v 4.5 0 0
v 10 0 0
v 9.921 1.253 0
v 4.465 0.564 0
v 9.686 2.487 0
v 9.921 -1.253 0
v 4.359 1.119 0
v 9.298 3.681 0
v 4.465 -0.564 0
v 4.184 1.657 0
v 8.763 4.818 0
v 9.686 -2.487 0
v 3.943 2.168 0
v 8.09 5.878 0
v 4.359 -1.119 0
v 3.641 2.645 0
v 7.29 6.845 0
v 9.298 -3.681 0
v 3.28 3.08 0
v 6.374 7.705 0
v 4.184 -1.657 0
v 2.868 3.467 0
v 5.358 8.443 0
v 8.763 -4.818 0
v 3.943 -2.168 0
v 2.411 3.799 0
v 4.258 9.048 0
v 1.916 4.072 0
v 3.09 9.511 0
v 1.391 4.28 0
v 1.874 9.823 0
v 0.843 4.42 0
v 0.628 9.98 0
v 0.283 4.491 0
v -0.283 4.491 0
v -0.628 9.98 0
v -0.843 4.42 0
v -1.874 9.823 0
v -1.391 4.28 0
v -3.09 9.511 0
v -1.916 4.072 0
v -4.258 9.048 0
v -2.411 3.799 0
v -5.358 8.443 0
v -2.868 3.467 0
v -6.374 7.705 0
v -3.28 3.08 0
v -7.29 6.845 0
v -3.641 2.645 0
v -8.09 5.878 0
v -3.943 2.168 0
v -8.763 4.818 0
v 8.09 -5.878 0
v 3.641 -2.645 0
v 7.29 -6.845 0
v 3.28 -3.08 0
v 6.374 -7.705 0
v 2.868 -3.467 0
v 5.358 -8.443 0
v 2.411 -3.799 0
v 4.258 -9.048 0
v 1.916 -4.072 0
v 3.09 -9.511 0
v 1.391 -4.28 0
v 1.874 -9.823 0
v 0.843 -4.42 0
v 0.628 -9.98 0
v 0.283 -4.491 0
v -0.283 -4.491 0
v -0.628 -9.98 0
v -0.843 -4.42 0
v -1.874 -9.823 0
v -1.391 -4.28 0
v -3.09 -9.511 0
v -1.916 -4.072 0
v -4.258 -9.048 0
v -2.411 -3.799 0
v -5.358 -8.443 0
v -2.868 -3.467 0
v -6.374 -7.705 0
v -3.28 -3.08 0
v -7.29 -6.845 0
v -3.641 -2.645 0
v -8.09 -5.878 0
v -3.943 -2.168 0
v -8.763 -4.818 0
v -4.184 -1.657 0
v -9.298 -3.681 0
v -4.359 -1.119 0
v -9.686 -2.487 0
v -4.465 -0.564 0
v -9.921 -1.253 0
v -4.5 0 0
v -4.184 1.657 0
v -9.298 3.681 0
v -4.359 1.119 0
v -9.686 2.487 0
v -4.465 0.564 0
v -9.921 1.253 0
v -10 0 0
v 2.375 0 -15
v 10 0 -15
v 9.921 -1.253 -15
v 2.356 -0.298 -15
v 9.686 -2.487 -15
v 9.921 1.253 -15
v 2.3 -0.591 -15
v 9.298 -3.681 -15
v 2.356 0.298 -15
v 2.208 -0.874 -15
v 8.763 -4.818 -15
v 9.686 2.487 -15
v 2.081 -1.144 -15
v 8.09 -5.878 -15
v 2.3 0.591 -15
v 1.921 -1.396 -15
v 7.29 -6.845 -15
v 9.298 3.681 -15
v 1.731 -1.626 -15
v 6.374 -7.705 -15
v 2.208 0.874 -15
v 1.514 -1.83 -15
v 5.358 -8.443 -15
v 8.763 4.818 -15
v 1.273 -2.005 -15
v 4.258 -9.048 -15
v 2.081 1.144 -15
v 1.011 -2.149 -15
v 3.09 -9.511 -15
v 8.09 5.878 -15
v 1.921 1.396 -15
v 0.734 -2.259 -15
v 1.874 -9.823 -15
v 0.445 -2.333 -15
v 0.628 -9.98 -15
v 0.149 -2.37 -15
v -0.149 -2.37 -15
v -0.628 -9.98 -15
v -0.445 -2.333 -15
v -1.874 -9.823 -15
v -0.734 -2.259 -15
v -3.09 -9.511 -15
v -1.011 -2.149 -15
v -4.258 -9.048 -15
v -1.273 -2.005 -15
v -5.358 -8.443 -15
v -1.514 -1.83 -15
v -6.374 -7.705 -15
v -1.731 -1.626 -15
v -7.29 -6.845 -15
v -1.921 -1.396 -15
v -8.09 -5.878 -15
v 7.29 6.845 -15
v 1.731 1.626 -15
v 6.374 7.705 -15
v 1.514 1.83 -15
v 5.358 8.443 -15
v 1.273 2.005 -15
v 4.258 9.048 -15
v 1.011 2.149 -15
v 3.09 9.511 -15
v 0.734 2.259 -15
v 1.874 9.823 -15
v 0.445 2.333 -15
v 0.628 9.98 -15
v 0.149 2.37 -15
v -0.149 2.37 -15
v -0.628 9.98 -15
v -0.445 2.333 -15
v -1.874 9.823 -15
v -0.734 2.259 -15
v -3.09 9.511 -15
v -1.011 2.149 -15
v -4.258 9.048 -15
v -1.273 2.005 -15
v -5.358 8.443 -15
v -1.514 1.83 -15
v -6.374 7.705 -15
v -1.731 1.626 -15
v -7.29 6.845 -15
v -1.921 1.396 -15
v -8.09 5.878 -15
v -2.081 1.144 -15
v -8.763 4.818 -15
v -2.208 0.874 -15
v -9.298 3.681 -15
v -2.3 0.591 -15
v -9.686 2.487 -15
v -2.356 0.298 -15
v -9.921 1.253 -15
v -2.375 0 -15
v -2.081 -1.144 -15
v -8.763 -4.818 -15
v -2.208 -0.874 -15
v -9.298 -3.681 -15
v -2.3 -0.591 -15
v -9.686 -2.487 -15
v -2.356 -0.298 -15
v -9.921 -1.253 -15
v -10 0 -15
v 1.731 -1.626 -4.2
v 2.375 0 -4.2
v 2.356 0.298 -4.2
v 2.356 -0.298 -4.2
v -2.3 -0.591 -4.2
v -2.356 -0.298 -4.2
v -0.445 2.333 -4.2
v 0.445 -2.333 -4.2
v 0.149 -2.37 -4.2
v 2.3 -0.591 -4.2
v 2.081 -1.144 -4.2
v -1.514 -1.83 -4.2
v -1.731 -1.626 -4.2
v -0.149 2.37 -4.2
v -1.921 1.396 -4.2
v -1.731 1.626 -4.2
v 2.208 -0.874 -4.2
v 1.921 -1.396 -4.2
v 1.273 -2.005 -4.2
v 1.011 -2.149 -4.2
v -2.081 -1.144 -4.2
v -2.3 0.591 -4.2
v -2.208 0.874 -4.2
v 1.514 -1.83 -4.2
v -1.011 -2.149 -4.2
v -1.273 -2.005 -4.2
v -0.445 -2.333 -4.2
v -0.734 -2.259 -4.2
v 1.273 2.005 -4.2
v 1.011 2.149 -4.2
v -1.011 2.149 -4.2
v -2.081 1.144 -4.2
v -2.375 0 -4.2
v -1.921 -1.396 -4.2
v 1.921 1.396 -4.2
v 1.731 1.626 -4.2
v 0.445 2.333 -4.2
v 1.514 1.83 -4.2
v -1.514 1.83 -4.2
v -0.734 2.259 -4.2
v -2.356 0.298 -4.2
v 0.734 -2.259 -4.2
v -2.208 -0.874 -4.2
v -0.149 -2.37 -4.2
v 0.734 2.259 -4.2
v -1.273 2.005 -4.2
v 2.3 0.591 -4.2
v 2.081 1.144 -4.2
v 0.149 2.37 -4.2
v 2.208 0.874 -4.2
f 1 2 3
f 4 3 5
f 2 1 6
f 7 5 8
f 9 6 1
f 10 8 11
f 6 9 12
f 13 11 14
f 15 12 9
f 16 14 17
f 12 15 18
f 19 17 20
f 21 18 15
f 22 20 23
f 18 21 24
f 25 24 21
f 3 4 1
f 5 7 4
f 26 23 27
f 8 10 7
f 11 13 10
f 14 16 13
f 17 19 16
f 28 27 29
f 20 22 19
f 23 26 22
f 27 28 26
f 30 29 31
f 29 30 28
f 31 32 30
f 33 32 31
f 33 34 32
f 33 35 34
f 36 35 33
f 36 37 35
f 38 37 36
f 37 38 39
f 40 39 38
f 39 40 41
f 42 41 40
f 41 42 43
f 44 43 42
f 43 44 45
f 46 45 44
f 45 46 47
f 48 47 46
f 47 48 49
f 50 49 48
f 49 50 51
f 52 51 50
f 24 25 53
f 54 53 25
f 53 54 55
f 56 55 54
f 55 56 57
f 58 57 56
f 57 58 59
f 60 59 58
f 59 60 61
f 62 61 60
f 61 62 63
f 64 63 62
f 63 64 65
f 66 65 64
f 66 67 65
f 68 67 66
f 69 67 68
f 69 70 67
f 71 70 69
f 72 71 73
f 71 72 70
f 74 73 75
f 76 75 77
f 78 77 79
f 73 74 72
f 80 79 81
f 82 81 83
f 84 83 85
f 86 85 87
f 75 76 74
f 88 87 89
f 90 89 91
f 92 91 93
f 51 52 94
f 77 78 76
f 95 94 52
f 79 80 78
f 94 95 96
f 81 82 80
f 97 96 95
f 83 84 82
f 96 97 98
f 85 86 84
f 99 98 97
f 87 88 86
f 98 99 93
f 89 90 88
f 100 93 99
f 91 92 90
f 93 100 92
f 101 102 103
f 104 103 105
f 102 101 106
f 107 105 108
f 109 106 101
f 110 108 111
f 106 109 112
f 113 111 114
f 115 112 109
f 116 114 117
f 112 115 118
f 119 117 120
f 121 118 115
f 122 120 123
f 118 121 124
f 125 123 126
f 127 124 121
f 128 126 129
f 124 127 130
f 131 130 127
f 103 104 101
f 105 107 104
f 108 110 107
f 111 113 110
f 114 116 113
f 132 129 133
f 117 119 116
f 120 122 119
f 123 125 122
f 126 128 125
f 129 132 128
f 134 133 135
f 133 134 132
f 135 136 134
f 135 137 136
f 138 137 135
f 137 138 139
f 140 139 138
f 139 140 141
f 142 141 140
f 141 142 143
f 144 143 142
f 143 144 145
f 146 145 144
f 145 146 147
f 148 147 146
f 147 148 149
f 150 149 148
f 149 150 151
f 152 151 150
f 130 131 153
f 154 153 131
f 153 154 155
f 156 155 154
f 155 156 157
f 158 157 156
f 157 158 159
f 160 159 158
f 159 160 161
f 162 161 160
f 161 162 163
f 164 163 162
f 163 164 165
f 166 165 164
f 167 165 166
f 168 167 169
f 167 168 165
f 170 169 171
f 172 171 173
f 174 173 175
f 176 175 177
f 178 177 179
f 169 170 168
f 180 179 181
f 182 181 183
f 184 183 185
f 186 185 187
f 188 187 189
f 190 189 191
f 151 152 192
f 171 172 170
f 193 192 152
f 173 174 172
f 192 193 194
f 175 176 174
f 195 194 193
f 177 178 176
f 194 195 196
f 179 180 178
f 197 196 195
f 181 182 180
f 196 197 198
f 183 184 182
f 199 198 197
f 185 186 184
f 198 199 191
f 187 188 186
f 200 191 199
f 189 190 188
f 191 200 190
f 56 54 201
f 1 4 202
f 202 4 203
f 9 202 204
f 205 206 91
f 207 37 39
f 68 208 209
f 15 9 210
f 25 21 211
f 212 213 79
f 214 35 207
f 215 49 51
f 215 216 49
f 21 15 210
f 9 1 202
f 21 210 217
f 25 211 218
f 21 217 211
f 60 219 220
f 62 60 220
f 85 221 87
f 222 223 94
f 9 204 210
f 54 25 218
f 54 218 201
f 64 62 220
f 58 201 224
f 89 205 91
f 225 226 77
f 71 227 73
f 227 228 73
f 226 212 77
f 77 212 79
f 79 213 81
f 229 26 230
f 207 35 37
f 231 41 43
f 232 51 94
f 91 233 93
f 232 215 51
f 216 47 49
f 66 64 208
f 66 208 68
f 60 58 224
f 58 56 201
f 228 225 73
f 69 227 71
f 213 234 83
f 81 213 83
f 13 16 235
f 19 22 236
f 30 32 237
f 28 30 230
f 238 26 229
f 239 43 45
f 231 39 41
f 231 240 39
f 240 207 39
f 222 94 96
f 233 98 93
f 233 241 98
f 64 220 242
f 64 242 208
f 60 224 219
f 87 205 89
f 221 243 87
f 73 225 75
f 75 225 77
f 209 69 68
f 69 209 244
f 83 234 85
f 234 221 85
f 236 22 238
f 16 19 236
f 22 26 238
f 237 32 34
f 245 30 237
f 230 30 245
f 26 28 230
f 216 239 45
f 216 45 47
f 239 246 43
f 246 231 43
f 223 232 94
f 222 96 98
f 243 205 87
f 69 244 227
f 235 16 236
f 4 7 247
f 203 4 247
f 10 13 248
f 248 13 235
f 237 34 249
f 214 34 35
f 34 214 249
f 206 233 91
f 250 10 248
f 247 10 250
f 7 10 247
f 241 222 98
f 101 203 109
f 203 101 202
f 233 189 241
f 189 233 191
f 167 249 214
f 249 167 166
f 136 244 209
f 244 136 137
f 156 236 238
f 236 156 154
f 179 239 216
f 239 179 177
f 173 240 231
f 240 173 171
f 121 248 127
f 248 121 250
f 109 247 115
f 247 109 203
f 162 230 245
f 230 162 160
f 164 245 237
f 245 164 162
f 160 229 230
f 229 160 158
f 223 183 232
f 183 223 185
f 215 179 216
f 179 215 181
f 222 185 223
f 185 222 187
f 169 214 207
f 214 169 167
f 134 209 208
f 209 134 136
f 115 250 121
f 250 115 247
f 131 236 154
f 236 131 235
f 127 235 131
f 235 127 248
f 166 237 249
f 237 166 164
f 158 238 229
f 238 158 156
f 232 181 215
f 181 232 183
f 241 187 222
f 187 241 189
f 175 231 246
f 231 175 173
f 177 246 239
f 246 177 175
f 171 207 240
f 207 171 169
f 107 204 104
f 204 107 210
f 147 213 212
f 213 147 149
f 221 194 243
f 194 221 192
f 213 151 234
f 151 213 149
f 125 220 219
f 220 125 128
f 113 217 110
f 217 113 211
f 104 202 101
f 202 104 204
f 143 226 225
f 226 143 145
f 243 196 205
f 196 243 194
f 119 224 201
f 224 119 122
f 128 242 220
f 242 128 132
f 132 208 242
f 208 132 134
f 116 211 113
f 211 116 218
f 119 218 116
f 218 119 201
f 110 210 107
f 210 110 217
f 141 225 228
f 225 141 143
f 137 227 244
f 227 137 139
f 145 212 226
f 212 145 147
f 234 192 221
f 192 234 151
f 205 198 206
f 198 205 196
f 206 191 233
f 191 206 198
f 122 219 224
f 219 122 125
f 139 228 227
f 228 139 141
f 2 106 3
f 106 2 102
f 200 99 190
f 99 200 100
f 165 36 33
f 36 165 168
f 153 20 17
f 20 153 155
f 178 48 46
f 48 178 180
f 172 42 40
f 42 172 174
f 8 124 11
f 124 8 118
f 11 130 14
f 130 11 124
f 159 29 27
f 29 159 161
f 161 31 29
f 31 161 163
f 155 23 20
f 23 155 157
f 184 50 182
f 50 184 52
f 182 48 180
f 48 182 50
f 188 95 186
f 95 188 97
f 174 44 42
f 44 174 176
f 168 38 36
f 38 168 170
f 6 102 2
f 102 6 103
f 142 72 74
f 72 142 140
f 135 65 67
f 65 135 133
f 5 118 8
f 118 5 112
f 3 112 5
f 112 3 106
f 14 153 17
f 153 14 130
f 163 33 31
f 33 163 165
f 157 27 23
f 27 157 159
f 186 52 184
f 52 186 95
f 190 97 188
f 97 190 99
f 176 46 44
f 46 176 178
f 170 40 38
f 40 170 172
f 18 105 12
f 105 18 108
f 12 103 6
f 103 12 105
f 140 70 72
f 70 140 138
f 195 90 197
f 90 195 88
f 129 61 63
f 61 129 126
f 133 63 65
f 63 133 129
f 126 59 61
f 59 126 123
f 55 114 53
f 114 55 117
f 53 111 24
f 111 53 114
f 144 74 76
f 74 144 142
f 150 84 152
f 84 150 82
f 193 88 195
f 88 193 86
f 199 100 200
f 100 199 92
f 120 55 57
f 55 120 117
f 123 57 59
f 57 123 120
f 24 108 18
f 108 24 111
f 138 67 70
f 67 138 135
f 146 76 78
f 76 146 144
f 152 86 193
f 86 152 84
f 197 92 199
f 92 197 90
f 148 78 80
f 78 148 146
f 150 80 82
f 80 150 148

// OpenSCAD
$fn = 50;


difference() {
	union() {
		translate(v = [0, 0, -15.0000000000]) {
			cylinder(h = 15, r = 10.0000000000);
		}
		cylinder(h = 0, r = 19.0000000000);
	}
	union() {
		translate(v = [0, 0, 0]) {
			rotate(a = [0, 0, 0]) {
				difference() {
					union() {
						#translate(v = [0, 0, -15.0000000000]) {
							cylinder(h = 15, r = 2.2500000000);
						}
						#translate(v = [0, 0, -4.2000000000]) {
							cylinder(h = 4.2000000000, r = 10.0000000000, r1 = 2.3750000000, r2 = 4.5000000000);
						}
						#translate(v = [0, 0, -15.0000000000]) {
							cylinder(h = 15, r = 2.3750000000);
						}
						#translate(v = [0, 0, -15.0000000000]) {
							cylinder(h = 15, r = 2.2500000000);
						}
					}
					union();
				}
			}
		}
	}
}
